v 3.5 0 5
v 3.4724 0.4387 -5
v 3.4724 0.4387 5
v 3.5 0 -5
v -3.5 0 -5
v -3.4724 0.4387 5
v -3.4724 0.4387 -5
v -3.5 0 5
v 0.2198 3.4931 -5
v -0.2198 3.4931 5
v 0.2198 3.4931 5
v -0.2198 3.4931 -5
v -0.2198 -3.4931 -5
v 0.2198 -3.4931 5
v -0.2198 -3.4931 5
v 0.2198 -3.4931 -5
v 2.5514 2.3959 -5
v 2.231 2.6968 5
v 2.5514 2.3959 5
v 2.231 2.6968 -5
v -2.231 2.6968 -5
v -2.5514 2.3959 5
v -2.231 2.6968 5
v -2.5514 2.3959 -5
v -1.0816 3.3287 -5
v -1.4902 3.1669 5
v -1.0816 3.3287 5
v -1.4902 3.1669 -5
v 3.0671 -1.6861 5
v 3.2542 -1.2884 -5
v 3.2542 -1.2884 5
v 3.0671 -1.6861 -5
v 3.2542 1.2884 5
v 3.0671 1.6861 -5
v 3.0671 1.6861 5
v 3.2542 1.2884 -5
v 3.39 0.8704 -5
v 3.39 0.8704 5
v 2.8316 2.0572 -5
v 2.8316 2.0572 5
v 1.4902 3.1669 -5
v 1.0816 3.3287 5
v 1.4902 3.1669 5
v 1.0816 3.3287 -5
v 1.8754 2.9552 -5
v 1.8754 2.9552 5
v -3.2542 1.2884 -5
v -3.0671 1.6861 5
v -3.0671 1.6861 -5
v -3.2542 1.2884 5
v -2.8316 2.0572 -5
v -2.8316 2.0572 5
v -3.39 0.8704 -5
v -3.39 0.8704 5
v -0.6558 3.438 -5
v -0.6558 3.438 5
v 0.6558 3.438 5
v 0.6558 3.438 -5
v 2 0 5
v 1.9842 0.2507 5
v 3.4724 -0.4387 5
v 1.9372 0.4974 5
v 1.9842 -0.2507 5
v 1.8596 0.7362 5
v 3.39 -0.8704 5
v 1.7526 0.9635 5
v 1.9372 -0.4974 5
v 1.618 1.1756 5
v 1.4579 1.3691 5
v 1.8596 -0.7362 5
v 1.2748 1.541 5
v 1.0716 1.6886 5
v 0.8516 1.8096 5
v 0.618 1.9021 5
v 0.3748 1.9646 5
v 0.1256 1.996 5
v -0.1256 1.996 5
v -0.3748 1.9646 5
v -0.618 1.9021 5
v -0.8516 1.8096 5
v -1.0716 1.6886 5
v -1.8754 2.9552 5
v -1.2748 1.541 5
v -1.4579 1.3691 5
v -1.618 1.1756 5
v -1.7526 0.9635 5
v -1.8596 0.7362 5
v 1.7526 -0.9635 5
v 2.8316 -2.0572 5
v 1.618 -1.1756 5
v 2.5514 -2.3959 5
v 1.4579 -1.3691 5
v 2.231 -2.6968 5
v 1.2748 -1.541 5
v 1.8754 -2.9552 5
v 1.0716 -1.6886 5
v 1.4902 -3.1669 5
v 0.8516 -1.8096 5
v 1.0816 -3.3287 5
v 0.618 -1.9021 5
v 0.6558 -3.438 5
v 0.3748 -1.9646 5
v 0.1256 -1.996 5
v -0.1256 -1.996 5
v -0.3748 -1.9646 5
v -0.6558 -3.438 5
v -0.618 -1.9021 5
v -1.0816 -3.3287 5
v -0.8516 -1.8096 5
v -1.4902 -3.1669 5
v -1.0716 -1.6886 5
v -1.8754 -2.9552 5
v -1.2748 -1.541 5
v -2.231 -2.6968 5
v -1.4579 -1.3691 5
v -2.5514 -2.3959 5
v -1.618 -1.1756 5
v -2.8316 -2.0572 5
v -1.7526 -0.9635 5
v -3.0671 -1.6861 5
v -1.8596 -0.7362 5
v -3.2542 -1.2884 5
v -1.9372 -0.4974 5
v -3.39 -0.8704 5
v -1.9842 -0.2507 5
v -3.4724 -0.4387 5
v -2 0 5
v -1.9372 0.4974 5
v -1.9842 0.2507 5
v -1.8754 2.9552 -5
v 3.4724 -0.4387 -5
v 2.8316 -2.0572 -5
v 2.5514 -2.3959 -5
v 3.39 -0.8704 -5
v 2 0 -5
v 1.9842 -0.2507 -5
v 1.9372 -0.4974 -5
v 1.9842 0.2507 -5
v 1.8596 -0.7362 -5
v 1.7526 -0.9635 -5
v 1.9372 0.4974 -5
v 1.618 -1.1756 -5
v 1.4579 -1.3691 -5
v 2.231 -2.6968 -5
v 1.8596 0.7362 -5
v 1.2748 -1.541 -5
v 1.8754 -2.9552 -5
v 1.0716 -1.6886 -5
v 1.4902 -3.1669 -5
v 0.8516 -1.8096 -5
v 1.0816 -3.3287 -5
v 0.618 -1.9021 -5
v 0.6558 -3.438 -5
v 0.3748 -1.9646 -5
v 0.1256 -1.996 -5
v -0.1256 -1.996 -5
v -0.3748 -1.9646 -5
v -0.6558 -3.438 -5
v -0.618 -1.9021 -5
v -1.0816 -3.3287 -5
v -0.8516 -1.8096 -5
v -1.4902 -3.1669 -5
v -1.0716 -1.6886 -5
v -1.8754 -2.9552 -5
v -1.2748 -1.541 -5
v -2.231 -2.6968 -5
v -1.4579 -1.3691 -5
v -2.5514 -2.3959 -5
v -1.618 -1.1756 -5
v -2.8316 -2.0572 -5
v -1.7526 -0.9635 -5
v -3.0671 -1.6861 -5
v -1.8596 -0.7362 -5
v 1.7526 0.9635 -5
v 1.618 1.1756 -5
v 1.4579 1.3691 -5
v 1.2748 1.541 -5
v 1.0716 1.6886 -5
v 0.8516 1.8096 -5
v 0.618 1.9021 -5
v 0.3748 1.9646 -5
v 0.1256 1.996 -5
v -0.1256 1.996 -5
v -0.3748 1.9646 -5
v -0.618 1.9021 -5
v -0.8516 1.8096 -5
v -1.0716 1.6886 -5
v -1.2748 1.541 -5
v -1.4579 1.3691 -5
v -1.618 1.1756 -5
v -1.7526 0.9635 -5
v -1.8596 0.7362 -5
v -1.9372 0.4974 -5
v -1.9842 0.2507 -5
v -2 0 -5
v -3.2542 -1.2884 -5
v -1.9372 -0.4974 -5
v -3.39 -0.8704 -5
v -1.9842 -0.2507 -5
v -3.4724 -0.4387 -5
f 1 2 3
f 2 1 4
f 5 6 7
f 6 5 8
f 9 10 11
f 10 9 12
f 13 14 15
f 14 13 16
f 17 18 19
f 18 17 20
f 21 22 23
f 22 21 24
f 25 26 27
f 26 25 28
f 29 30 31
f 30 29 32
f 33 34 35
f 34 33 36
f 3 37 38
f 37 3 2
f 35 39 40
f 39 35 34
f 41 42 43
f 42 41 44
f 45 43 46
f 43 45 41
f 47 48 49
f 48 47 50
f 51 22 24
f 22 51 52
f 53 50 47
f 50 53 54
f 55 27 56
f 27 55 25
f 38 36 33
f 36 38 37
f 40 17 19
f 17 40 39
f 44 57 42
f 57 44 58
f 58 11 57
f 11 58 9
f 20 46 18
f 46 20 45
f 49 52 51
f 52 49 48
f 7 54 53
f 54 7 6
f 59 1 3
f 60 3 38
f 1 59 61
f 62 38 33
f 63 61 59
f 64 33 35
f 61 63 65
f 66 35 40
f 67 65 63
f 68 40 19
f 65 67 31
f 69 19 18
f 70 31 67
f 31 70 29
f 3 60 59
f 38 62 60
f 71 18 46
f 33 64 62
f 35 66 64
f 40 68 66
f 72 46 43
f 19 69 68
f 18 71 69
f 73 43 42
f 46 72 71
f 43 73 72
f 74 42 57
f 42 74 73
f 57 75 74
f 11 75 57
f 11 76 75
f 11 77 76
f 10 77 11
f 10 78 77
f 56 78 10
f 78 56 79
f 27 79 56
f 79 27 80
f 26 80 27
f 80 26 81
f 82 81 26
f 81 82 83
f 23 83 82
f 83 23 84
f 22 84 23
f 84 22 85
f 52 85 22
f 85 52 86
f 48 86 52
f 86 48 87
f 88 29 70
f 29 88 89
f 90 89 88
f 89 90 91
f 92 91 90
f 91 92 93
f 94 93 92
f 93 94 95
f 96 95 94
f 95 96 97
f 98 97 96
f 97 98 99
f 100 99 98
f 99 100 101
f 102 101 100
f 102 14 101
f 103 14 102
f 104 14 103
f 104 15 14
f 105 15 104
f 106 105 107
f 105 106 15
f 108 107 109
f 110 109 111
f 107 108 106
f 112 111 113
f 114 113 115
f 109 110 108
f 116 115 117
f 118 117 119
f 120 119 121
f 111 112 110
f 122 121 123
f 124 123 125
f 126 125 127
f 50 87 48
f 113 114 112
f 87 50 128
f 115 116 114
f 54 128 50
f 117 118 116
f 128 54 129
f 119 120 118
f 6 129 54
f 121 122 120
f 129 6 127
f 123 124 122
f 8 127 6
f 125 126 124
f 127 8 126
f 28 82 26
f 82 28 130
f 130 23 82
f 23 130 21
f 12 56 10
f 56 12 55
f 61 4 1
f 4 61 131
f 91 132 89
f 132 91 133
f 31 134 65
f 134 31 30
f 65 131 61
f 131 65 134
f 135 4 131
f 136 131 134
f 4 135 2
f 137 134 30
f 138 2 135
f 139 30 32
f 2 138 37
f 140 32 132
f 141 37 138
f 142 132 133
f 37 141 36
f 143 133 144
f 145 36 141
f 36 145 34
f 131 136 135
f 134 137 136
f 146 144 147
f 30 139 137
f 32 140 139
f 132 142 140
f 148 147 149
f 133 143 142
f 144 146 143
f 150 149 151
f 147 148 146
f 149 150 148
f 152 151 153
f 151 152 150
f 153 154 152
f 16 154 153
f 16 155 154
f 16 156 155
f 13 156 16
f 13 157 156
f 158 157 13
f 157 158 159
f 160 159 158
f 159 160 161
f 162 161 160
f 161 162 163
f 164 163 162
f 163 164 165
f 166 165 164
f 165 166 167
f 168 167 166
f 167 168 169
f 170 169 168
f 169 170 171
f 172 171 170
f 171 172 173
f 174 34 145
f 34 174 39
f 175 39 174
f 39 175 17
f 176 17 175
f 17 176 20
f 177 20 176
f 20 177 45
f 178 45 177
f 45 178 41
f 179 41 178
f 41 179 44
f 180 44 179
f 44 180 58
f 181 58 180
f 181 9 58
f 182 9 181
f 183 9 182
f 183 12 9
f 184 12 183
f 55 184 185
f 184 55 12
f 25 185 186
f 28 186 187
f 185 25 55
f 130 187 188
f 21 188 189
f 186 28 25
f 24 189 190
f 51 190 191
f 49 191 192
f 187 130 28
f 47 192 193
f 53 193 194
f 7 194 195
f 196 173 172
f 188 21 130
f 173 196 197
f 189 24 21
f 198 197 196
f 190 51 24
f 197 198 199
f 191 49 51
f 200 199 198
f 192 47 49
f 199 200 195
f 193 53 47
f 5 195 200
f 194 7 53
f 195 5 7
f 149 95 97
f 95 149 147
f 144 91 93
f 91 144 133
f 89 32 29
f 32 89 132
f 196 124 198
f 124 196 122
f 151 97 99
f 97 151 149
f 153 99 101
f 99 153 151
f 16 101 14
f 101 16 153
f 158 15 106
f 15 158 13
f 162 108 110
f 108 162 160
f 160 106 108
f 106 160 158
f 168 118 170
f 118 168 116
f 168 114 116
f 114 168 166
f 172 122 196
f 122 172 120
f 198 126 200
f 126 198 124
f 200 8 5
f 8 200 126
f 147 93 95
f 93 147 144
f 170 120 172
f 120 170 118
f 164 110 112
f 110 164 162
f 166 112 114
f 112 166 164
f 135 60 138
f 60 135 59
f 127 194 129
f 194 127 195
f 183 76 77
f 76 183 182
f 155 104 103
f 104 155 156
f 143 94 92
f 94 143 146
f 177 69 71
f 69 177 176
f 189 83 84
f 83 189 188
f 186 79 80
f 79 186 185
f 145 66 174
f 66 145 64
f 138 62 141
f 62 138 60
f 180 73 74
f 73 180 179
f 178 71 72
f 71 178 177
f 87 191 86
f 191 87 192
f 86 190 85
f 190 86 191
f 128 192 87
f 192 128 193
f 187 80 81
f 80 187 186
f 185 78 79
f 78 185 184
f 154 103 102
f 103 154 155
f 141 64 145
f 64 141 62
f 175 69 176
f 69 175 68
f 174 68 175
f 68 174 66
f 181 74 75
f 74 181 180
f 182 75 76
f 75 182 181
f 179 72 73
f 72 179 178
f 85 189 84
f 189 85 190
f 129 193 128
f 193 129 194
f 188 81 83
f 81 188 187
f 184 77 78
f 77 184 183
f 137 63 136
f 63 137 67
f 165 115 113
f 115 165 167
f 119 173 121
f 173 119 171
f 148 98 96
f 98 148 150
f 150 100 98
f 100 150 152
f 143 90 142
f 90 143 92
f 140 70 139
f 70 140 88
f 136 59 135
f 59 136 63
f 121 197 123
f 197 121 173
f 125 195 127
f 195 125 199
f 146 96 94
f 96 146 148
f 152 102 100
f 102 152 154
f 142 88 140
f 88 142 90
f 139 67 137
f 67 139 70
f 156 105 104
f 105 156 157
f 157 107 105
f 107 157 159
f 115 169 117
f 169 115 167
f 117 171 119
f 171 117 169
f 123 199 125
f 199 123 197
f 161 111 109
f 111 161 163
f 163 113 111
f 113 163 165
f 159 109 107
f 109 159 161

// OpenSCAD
$fn = 50;


difference() {
	union() {
		translate(v = [0, 0, -5.0000000000]) {
			cylinder(h = 10, r = 3.5000000000);
		}
	}
	union() {
		translate(v = [0, 0, -100.0000000000]) {
			cylinder(h = 200, r = 2.0000000000);
		}
	}
}
